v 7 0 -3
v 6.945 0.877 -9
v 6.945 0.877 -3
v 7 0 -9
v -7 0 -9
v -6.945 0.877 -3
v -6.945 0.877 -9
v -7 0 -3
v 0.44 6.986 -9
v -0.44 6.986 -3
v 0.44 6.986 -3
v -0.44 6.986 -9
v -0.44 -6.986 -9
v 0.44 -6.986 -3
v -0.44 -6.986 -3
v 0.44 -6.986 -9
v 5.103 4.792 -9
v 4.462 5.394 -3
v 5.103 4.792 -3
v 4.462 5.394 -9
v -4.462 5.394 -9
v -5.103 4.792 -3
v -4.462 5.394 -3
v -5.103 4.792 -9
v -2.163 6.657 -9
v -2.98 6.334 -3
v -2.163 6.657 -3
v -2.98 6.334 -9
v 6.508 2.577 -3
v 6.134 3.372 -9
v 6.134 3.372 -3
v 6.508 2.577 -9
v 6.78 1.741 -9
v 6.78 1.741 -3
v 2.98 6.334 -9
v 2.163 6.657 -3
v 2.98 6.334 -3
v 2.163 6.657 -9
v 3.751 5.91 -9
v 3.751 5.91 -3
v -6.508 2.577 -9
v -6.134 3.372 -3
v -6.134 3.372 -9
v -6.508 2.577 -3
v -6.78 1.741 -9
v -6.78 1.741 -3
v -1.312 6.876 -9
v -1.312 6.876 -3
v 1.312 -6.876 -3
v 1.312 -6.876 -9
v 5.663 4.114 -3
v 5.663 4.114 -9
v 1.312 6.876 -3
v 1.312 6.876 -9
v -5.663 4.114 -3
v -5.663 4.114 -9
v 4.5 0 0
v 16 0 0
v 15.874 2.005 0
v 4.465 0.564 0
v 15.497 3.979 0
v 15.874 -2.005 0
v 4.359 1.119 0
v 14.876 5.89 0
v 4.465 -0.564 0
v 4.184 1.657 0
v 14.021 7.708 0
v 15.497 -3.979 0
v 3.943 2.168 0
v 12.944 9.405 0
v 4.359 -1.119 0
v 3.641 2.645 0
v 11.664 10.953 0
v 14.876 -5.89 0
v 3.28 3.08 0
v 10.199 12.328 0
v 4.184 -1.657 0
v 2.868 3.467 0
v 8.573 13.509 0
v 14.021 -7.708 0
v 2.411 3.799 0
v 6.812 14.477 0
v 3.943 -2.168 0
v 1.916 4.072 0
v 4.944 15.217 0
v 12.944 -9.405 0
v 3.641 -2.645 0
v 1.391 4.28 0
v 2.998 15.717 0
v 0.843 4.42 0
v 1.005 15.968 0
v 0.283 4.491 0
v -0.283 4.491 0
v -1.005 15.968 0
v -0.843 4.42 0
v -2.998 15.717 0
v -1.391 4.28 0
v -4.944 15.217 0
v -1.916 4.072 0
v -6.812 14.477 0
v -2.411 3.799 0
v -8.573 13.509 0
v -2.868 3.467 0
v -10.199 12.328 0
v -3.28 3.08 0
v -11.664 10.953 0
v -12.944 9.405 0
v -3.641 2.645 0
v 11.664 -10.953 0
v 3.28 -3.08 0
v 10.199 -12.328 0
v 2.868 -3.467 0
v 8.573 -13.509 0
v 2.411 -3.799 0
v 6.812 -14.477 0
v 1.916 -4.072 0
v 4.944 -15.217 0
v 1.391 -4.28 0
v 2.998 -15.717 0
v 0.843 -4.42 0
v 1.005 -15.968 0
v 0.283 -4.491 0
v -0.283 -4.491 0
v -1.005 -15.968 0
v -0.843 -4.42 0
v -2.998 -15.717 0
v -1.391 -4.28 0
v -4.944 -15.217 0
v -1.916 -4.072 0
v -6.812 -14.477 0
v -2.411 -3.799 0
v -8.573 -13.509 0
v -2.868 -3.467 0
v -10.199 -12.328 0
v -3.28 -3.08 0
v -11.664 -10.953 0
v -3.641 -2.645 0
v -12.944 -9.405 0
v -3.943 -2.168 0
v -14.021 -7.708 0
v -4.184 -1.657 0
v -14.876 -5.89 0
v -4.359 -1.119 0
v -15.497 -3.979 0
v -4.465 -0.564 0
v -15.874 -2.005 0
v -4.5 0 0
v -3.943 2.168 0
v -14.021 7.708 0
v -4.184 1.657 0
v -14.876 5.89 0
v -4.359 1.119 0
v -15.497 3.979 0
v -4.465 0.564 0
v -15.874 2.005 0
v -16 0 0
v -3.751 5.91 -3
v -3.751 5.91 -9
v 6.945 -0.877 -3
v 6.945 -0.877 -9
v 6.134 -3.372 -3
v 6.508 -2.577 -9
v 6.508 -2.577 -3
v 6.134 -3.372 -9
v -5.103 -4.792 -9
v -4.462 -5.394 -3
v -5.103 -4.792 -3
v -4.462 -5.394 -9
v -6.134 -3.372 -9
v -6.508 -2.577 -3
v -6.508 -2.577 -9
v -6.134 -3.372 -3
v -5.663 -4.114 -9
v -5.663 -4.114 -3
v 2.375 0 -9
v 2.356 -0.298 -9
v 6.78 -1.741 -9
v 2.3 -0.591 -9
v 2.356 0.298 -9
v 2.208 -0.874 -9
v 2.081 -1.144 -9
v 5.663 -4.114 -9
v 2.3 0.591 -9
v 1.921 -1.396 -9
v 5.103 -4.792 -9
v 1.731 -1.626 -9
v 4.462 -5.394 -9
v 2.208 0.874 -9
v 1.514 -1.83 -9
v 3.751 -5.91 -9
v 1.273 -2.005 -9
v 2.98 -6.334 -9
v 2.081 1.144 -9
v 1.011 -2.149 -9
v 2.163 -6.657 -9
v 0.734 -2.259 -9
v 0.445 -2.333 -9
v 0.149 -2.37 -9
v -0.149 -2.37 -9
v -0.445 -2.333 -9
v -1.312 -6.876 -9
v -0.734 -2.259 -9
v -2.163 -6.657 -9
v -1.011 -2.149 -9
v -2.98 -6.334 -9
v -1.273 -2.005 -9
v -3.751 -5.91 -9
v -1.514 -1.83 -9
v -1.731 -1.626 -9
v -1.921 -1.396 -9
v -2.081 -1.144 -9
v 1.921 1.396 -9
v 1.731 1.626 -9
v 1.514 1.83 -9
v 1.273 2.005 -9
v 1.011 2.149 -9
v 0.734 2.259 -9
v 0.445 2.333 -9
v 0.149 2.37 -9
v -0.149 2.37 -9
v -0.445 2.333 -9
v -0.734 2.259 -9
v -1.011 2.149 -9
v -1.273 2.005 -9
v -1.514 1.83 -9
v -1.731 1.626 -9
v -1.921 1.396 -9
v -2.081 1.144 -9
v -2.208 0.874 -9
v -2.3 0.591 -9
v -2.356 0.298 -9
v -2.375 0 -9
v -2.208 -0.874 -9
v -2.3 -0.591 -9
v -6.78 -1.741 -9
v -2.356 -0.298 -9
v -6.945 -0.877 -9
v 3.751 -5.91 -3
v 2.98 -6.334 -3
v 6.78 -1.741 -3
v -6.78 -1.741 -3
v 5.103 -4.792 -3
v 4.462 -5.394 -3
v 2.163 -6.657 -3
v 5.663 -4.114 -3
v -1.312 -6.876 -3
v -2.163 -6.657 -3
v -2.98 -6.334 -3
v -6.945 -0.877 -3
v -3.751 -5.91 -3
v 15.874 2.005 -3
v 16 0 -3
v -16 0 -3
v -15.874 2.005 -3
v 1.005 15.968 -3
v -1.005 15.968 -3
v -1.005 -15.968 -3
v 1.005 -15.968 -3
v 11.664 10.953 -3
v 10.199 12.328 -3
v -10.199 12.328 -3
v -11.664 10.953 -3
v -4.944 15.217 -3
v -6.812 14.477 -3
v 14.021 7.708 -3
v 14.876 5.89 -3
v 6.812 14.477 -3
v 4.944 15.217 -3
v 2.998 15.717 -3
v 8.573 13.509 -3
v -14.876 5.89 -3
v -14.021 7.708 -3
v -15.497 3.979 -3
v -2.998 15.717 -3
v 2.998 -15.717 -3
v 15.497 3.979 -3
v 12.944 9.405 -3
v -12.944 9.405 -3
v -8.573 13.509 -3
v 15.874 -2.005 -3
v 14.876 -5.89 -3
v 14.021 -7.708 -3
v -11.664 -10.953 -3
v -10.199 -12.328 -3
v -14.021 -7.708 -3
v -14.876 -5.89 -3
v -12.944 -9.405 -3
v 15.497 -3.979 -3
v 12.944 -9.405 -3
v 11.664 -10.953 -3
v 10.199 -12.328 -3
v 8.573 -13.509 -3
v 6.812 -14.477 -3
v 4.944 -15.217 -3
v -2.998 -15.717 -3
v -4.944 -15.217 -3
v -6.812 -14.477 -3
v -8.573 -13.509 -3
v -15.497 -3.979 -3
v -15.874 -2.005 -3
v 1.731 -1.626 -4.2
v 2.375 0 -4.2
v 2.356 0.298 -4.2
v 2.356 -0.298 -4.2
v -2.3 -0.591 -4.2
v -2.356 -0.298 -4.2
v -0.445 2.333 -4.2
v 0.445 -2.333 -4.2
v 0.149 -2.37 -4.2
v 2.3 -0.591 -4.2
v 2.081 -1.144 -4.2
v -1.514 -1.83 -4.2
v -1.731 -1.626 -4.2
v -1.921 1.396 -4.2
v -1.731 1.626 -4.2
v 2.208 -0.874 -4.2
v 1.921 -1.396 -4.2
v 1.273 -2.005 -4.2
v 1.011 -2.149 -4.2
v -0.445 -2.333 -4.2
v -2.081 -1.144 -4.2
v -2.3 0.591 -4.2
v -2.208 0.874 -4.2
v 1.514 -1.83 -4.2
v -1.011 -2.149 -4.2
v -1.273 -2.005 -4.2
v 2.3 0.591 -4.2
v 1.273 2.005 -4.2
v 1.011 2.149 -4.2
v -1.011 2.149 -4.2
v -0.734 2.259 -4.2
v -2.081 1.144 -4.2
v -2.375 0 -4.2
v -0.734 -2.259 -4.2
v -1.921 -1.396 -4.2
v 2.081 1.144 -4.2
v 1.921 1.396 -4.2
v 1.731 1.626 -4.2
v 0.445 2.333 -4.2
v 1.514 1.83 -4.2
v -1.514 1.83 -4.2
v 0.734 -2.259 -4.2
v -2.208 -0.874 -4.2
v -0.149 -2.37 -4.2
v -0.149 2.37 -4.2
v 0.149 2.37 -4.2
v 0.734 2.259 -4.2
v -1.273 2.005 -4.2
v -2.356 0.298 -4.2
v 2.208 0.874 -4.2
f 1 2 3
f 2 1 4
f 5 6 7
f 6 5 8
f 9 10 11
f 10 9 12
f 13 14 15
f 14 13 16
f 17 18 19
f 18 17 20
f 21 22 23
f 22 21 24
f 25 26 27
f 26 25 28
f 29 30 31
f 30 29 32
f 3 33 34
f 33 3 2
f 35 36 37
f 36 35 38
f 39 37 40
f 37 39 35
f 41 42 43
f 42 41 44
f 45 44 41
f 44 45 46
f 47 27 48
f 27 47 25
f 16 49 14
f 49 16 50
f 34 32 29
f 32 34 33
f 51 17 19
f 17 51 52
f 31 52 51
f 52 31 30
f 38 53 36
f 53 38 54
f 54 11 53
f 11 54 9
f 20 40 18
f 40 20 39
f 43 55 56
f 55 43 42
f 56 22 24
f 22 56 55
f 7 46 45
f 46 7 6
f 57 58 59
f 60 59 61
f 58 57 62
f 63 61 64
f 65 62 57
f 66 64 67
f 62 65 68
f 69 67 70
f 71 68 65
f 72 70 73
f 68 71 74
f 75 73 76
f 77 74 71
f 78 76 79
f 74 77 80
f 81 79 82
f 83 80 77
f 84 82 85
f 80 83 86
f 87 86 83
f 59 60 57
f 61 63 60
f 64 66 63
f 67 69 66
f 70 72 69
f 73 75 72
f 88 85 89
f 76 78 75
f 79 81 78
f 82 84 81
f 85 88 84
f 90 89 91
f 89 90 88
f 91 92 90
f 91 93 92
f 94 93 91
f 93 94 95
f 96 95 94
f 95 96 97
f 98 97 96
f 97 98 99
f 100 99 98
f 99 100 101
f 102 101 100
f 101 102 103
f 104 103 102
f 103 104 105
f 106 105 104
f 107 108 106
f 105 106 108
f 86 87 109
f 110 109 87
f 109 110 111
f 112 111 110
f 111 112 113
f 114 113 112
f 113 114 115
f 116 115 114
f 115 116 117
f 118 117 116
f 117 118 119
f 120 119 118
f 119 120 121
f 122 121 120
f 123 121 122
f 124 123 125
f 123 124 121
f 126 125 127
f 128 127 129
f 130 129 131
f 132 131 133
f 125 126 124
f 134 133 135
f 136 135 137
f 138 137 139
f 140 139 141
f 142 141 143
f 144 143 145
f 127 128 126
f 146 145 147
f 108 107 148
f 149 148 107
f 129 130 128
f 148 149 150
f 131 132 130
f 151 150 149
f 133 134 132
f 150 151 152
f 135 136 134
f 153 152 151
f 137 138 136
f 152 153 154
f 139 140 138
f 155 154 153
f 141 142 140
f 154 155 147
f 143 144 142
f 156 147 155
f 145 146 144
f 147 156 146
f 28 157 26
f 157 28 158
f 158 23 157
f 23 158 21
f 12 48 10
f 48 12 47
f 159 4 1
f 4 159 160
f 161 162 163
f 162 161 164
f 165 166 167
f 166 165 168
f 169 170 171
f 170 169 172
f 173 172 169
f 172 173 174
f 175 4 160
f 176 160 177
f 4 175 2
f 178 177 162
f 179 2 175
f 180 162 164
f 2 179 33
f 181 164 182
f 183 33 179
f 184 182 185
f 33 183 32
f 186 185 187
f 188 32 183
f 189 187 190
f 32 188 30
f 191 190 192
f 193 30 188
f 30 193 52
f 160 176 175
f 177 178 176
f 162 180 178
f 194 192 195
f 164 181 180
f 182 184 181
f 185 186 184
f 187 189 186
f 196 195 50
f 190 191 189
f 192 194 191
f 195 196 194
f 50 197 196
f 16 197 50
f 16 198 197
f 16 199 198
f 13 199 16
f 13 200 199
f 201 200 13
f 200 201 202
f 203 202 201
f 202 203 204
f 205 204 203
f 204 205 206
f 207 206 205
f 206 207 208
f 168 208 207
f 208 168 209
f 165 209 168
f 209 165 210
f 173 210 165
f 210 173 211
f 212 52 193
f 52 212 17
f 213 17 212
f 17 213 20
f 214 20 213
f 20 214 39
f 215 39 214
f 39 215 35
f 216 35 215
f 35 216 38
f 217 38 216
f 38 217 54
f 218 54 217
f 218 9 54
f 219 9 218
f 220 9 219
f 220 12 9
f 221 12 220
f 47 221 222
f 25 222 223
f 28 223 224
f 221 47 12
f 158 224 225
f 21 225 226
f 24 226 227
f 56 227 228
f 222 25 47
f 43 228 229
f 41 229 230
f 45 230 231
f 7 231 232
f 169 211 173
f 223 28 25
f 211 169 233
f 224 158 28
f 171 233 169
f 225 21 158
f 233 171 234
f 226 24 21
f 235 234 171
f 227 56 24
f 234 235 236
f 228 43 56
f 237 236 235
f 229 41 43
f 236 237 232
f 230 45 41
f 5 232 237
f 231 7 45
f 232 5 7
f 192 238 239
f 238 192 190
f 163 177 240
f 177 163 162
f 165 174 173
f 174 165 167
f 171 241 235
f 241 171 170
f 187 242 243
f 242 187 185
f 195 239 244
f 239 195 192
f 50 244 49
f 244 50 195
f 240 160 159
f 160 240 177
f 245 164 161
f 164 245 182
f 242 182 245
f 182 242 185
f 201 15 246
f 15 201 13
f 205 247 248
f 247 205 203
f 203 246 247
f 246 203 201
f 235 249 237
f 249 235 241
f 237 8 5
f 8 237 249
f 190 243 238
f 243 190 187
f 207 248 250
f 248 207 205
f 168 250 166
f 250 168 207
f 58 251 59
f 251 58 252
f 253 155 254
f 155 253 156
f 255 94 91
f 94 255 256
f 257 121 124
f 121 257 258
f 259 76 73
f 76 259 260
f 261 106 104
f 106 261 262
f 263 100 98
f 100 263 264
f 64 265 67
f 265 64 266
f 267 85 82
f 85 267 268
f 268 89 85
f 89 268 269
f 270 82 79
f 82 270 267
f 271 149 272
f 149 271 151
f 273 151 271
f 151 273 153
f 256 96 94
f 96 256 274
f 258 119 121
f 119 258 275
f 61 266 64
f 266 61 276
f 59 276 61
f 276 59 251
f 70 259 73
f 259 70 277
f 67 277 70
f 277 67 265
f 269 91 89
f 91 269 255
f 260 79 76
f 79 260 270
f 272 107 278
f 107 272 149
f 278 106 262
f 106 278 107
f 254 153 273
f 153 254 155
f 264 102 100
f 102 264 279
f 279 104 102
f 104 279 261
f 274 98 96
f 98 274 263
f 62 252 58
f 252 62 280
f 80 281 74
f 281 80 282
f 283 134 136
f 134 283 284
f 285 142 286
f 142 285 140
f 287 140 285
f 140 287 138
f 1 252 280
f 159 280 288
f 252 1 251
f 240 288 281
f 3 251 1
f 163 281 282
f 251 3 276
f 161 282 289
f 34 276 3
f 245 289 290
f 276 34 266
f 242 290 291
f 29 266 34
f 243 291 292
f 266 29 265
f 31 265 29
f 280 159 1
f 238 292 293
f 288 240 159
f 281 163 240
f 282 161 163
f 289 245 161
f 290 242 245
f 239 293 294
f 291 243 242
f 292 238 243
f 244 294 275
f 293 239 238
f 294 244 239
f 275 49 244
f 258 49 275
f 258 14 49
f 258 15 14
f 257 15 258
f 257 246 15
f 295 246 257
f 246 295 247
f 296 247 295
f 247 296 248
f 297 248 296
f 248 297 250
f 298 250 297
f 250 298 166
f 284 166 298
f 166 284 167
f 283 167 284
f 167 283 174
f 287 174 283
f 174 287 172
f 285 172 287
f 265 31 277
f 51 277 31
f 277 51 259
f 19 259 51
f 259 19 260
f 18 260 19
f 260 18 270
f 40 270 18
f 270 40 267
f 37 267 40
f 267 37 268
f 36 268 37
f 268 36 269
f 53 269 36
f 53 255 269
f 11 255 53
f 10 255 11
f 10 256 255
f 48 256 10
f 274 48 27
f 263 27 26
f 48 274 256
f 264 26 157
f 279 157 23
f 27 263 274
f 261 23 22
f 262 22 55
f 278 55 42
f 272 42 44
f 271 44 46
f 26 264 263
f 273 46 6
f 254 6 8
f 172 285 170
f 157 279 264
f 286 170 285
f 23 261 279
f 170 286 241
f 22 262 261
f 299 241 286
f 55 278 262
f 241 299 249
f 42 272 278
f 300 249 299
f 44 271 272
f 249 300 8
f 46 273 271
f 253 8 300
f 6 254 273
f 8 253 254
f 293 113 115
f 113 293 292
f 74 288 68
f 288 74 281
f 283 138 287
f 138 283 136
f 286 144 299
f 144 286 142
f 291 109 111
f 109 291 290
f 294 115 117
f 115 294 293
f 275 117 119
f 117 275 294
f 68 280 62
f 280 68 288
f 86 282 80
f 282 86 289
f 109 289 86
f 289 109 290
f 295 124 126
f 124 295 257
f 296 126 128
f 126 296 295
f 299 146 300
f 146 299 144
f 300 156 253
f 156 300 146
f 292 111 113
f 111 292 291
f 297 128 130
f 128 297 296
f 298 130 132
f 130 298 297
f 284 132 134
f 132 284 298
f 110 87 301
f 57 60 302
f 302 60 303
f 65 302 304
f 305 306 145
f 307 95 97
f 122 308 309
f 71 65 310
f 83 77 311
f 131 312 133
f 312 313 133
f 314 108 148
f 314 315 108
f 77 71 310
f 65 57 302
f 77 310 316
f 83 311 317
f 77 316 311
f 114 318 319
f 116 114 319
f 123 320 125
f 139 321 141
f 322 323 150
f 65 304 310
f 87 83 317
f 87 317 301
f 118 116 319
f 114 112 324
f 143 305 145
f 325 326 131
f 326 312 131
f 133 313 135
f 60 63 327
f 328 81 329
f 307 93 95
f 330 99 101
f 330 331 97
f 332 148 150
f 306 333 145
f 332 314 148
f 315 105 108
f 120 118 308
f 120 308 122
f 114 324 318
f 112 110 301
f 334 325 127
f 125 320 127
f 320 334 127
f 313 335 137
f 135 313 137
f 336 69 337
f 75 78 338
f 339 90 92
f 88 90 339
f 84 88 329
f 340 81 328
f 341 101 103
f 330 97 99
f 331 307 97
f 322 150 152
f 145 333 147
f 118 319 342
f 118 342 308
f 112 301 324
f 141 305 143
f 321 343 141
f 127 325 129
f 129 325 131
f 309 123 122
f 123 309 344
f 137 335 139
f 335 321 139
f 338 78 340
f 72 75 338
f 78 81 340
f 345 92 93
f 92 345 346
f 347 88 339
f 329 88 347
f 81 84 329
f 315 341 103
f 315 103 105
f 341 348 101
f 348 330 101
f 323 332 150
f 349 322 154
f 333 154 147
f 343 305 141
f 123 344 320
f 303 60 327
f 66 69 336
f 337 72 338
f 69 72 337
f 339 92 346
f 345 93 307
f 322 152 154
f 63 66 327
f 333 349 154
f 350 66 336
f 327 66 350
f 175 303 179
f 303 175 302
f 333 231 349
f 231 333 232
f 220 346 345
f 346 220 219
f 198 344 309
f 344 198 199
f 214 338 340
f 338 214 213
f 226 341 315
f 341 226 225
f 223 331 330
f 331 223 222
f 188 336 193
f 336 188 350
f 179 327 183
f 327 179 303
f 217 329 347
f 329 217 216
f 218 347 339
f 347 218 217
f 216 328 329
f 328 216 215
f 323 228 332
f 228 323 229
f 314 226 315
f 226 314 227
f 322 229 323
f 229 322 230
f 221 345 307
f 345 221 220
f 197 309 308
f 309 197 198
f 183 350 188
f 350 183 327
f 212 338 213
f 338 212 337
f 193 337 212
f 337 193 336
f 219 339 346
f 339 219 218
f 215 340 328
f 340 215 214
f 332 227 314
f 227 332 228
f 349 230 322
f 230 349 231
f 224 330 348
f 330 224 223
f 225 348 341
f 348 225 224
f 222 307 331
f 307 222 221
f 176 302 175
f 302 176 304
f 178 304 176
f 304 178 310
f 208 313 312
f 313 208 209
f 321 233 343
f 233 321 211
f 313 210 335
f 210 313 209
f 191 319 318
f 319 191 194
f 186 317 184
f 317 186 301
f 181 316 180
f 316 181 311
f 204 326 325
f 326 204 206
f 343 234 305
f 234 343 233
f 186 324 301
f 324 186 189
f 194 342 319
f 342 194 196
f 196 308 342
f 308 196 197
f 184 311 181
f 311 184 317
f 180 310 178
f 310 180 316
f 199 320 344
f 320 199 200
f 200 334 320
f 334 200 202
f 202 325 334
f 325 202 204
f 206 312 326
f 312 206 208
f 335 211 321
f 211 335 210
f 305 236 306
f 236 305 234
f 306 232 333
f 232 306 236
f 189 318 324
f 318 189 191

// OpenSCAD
$fn = 50;


difference() {
	union() {
		translate(v = [0, 0, -9.0000000000]) {
			cylinder(h = 9, r = 7.0000000000);
		}
		translate(v = [0, 0, -3.0000000000]) {
			cylinder(h = 3, r = 16.0000000000);
		}
	}
	union() {
		translate(v = [0, 0, 0]) {
			rotate(a = [0, 0, 0]) {
				difference() {
					union() {
						#translate(v = [0, 0, -9.0000000000]) {
							cylinder(h = 9, r = 2.2500000000);
						}
						#translate(v = [0, 0, -4.2000000000]) {
							cylinder(h = 4.2000000000, r = 7.0000000000, r1 = 2.3750000000, r2 = 4.5000000000);
						}
						#translate(v = [0, 0, -9.0000000000]) {
							cylinder(h = 9, r = 2.3750000000);
						}
						#translate(v = [0, 0, -9.0000000000]) {
							cylinder(h = 9, r = 2.2500000000);
						}
					}
					union();
				}
			}
		}
	}
}
